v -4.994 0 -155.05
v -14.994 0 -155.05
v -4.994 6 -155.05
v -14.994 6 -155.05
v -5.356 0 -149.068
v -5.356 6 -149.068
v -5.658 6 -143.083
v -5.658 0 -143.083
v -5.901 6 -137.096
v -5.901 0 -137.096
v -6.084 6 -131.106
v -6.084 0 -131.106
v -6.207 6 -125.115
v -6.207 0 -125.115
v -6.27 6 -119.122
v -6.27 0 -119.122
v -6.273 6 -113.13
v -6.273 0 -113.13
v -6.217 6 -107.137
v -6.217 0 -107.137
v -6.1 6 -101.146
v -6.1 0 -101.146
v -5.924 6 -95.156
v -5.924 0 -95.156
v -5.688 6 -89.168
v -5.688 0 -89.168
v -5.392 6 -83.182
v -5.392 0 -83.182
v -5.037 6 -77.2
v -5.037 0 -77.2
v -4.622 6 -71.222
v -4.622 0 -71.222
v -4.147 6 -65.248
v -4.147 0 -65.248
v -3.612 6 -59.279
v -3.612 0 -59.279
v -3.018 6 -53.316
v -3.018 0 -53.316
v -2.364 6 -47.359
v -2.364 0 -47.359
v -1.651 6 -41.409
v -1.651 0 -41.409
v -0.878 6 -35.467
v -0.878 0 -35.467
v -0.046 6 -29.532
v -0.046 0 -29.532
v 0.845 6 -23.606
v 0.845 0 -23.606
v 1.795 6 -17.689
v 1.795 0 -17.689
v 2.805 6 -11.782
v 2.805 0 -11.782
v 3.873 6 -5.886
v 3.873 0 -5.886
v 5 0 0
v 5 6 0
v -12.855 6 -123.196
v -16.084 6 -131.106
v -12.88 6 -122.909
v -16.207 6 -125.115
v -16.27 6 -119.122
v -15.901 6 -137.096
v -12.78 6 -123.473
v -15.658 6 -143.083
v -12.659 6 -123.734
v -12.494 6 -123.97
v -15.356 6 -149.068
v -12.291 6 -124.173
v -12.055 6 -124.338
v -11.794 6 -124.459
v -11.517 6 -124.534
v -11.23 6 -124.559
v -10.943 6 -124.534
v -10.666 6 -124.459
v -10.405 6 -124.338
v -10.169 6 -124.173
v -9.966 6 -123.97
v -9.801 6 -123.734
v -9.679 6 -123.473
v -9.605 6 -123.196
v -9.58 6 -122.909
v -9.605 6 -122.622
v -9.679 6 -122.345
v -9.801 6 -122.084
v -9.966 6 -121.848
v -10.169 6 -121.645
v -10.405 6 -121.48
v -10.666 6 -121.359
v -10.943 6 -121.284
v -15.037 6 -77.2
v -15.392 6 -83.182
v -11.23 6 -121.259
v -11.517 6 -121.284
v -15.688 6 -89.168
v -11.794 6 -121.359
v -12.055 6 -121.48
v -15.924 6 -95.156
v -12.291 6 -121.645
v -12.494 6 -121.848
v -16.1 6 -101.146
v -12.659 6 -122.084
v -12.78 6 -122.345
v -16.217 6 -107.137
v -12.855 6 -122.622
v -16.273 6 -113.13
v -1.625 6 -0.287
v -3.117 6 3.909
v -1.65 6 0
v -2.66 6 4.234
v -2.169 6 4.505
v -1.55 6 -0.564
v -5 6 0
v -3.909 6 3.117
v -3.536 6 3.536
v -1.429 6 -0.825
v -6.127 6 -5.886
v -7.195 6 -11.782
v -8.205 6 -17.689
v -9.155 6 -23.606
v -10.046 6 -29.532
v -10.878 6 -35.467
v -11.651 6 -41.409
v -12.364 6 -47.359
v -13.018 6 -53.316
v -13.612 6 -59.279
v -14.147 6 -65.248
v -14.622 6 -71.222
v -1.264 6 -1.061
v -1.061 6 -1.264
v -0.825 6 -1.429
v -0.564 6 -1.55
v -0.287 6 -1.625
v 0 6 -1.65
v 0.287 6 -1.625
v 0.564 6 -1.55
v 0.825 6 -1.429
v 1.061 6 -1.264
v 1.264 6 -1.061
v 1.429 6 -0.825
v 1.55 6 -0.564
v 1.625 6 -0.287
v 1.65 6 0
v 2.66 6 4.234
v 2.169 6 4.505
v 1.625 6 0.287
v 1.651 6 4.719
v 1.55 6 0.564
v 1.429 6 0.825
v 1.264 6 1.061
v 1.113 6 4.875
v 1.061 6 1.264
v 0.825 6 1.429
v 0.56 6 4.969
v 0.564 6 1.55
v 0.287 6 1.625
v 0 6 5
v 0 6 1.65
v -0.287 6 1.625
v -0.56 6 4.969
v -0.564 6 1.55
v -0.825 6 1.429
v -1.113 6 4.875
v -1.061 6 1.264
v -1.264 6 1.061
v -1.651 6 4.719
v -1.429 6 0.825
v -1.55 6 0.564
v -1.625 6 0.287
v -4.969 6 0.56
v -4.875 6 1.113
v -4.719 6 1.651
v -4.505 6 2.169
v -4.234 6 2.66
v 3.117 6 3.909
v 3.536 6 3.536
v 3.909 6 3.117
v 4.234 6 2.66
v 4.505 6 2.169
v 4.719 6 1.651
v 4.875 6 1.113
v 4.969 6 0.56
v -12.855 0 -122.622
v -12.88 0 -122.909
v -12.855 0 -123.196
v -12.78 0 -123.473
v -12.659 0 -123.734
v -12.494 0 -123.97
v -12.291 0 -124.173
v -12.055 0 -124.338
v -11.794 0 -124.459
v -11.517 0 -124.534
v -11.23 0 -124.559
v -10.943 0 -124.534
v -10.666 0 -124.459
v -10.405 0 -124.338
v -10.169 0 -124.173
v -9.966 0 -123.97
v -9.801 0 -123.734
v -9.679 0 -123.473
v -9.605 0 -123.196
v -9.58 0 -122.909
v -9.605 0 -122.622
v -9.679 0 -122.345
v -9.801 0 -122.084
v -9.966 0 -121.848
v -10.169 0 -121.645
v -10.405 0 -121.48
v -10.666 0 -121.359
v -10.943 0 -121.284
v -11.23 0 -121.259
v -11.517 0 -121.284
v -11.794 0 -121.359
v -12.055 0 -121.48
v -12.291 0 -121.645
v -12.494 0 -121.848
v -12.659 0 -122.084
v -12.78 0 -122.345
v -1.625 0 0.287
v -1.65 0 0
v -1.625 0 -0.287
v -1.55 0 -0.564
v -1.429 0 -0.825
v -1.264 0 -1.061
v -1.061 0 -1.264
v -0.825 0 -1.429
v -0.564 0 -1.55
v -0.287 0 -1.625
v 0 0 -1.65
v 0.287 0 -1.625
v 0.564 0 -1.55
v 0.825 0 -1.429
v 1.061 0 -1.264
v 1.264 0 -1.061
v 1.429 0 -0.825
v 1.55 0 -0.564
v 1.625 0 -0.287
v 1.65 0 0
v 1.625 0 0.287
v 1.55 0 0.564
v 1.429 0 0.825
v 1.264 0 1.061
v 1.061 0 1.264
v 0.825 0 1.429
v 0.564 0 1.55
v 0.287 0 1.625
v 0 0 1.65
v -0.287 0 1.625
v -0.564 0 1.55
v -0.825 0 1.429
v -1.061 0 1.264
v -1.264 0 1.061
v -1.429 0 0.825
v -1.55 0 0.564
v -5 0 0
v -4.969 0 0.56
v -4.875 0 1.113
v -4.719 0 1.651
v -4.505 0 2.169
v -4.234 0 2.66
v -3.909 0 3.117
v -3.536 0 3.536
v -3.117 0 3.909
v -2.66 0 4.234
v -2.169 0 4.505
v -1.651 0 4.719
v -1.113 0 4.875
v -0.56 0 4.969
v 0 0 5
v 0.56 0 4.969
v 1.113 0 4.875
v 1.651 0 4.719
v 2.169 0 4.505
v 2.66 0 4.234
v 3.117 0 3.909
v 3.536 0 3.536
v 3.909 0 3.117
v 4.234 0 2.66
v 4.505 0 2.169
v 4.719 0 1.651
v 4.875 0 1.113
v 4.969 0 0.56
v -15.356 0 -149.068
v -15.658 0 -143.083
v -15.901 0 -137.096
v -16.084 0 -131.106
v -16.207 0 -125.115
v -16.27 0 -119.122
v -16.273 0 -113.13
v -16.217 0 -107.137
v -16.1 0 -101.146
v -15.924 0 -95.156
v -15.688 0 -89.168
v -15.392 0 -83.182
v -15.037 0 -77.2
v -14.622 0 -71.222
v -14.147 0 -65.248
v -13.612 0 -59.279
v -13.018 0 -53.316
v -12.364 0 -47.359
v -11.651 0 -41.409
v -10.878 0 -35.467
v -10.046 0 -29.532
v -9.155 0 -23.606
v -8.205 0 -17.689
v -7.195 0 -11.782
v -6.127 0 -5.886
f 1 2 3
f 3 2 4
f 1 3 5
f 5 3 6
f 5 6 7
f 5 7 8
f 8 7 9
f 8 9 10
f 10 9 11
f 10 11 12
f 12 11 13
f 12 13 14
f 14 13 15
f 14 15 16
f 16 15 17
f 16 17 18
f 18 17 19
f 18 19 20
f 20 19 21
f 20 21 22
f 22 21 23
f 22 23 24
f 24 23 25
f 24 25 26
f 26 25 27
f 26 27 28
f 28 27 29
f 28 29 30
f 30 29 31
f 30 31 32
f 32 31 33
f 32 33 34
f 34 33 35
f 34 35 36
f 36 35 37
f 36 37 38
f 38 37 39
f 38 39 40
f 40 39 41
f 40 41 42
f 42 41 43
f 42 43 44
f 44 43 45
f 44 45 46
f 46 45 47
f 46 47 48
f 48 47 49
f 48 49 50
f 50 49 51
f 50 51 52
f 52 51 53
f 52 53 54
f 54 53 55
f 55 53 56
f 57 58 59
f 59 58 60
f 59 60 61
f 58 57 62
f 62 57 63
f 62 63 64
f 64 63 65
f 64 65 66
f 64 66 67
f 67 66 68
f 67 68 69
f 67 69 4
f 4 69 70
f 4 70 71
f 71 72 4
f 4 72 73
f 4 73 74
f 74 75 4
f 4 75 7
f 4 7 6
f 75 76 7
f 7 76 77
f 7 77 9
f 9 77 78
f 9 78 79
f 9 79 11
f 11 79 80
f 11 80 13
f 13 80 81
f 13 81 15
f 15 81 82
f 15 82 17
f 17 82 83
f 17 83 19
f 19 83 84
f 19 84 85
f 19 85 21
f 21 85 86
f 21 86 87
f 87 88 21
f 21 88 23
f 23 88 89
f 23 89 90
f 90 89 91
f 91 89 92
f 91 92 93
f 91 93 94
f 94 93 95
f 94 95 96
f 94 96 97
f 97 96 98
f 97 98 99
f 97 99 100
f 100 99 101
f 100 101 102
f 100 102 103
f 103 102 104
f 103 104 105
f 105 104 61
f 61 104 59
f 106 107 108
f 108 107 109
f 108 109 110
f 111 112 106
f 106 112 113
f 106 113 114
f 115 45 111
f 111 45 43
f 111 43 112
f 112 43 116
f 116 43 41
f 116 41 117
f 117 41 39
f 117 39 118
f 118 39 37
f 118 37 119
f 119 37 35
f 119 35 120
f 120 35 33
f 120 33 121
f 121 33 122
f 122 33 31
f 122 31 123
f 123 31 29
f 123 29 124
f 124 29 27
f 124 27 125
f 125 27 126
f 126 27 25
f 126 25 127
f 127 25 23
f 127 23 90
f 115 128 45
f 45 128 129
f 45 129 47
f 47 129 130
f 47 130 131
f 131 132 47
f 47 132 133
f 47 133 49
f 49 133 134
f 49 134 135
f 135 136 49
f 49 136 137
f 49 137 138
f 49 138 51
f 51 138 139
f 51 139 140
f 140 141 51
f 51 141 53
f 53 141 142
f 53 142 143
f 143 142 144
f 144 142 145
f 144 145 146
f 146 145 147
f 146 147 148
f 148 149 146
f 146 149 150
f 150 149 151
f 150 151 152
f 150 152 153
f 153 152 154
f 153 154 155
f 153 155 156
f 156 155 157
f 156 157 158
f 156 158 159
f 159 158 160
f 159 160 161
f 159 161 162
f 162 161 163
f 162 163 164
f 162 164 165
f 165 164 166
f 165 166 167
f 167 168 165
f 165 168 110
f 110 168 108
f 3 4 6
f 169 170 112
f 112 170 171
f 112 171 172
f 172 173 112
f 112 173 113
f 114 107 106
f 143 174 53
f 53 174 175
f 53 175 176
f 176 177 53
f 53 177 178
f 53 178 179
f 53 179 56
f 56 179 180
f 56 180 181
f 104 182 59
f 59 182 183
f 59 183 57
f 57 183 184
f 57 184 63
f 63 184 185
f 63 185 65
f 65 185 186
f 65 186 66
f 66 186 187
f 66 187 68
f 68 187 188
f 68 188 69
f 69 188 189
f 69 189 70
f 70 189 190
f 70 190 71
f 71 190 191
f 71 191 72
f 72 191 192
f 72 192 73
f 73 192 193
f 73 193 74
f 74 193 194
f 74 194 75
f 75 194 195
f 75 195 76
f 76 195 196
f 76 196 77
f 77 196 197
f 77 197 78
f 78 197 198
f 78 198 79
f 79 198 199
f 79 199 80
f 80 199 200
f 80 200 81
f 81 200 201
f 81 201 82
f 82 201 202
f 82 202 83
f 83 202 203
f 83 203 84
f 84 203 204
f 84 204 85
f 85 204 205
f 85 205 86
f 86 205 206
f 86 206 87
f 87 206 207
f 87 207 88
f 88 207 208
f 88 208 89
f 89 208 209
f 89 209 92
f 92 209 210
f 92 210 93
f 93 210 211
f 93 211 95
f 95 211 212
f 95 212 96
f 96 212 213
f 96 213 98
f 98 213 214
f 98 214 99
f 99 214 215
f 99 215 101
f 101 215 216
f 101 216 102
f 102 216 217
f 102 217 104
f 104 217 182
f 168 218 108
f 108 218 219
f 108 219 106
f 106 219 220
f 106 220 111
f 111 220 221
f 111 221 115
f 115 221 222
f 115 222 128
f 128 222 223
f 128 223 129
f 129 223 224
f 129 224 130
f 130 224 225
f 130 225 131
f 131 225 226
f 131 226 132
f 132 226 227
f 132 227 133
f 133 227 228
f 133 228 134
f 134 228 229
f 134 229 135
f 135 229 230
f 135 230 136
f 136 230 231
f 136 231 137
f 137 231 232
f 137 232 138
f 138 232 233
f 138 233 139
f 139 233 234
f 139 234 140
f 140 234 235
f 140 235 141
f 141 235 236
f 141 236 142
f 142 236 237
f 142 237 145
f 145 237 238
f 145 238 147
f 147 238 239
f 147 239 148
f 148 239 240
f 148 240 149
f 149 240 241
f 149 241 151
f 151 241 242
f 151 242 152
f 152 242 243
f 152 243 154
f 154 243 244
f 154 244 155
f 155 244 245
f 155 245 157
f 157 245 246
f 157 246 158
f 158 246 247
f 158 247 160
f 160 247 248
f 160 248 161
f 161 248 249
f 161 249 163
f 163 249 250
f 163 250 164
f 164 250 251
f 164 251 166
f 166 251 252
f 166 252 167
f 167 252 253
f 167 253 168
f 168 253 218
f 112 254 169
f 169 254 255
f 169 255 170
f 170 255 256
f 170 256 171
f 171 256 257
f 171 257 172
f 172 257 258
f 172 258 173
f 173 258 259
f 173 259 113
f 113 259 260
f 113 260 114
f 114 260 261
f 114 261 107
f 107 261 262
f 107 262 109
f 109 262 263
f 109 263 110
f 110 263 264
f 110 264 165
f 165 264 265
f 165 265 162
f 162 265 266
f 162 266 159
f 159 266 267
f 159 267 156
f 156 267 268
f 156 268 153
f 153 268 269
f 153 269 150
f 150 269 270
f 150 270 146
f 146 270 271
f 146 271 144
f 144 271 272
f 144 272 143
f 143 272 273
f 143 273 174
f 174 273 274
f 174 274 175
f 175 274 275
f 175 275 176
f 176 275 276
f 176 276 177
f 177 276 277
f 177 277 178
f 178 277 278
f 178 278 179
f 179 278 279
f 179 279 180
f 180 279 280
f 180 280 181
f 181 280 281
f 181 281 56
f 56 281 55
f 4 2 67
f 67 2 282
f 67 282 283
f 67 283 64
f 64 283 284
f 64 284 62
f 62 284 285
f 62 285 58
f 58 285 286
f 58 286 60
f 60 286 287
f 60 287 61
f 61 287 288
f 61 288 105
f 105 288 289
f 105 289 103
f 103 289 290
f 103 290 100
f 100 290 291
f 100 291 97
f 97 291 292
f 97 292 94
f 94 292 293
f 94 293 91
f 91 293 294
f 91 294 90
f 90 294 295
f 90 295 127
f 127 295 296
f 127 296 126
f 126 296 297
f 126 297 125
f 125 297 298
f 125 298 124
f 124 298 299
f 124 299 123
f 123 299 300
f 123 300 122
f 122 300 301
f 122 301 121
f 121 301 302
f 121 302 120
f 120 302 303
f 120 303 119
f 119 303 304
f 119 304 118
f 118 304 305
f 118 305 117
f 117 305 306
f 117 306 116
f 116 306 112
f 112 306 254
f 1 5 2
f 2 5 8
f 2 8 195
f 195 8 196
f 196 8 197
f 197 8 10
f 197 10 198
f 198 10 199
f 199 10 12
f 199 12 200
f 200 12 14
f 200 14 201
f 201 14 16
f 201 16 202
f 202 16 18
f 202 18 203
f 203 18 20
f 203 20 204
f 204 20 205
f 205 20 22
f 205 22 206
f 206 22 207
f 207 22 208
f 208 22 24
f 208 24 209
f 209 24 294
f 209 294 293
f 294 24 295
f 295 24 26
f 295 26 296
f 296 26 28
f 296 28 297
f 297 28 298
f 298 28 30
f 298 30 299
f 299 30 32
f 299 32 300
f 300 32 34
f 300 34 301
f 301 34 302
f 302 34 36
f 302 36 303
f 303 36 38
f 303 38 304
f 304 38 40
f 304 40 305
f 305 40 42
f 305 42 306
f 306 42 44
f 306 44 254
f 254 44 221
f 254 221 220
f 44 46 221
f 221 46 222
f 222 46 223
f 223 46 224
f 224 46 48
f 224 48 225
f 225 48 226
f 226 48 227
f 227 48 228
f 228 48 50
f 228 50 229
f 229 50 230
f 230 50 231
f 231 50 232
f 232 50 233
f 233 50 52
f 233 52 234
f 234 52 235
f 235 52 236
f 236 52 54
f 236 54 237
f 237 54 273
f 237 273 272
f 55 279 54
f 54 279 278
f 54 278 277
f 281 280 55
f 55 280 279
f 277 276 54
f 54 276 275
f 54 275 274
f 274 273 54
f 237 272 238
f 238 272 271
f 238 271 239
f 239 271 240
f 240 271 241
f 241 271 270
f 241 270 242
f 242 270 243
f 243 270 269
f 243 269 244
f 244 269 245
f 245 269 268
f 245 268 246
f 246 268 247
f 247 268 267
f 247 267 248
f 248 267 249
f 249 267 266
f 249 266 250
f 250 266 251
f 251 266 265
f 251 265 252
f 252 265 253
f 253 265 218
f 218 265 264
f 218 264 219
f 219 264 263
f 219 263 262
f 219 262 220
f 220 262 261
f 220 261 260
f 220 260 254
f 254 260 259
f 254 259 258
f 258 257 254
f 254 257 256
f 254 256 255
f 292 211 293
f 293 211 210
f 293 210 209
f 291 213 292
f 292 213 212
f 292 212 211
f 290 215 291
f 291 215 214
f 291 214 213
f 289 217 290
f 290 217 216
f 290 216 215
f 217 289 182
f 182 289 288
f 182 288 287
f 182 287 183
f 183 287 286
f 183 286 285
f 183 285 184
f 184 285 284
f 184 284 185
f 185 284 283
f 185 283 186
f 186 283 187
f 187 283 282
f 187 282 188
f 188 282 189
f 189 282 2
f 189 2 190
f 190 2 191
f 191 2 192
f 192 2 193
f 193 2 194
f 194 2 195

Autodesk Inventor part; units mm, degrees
ref_plane "YZ Plane" through (0, 0, 0) normal (1, 0, 0) x (0, 1, 0)
ref_plane "XZ Plane" through (0, 0, 0) normal (0, 1, 0) x (-1, 0, 0)
ref_plane "XY Plane" through (0, 0, 0) normal (0, 0, 1) x (1, 0, 0)
sketch "Sketch1" plane through (0, 0, 0) normal (0, 1, 0) x (-1, 0, 0)
  line L0 (0, 0) -> (0, -288.984) construction
  line L1 (5, 0) -> (5, -288.984)
  line L2 (-5, -288.984) -> (-5, 0)
  arc A0 (5, 0) -> (-5, 0) centre (0, 0) ccw
  arc A1 (-5, -288.984) -> (5, -288.984) centre (0, -288.984) ccw
  circle A2 centre (0, 0) radius 1.65
  circle A3 centre (0, -288.984) radius 1.65
  circle A4 centre (0, -231.585) radius 1.65
  arc A5 (-5, -231.585) -> (-5, 0) centre (-593.7207, -115.7925) ccw
  arc A6 (5, -231.585) -> (5, 0) centre (-583.7207, -115.7925) ccw
  circle A7 centre (11.23, -122.909) radius 1.65
  point P0 (0, -144.492)
  dimension "d0" = 3.3
  dimension "d1" = 3.3
  dimension "d2" = 10
  dimension "d3" = 288.984
  dimension "d14" = 3.3
  dimension "d15" = 231.585
  dimension "d18" = 600
  dimension "d19" = 600
  dimension "d20" = 3.3
  dimension "d21" = 122.909
extrude "Extrusion1" add sketch "Sketch1" along normal blind 6 contours L1 A1 L2 A5 | L1 A5 A6 | L1 A5 A0
sketch "Sketch2" plane through (0, 6, 0) normal (0, 1, 0) x (1, 0, 0)
  line L0 (-45.4801, 155.0502) -> (34.3076, 155.0502)
  line L1 (34.3076, 155.0502) -> (34.3076, -18.7731)
  line L2 (34.3076, -18.7731) -> (-45.4801, -18.7731)
  line L3 (-45.4801, -18.7731) -> (-45.4801, 155.0502)
  line L4 (-115.905, 316.254) -> (136.0777, 316.254)
  line L5 (136.0777, 316.254) -> (136.0777, -116.4724)
  line L6 (136.0777, -116.4724) -> (-115.905, -116.4724)
  line L7 (-115.905, -116.4724) -> (-115.905, 316.254)
  point P0 (0, 0)
extrude "Extrusion2" cut sketch "Sketch2" against normal blind 10
properties part number "Part_7_p1"
